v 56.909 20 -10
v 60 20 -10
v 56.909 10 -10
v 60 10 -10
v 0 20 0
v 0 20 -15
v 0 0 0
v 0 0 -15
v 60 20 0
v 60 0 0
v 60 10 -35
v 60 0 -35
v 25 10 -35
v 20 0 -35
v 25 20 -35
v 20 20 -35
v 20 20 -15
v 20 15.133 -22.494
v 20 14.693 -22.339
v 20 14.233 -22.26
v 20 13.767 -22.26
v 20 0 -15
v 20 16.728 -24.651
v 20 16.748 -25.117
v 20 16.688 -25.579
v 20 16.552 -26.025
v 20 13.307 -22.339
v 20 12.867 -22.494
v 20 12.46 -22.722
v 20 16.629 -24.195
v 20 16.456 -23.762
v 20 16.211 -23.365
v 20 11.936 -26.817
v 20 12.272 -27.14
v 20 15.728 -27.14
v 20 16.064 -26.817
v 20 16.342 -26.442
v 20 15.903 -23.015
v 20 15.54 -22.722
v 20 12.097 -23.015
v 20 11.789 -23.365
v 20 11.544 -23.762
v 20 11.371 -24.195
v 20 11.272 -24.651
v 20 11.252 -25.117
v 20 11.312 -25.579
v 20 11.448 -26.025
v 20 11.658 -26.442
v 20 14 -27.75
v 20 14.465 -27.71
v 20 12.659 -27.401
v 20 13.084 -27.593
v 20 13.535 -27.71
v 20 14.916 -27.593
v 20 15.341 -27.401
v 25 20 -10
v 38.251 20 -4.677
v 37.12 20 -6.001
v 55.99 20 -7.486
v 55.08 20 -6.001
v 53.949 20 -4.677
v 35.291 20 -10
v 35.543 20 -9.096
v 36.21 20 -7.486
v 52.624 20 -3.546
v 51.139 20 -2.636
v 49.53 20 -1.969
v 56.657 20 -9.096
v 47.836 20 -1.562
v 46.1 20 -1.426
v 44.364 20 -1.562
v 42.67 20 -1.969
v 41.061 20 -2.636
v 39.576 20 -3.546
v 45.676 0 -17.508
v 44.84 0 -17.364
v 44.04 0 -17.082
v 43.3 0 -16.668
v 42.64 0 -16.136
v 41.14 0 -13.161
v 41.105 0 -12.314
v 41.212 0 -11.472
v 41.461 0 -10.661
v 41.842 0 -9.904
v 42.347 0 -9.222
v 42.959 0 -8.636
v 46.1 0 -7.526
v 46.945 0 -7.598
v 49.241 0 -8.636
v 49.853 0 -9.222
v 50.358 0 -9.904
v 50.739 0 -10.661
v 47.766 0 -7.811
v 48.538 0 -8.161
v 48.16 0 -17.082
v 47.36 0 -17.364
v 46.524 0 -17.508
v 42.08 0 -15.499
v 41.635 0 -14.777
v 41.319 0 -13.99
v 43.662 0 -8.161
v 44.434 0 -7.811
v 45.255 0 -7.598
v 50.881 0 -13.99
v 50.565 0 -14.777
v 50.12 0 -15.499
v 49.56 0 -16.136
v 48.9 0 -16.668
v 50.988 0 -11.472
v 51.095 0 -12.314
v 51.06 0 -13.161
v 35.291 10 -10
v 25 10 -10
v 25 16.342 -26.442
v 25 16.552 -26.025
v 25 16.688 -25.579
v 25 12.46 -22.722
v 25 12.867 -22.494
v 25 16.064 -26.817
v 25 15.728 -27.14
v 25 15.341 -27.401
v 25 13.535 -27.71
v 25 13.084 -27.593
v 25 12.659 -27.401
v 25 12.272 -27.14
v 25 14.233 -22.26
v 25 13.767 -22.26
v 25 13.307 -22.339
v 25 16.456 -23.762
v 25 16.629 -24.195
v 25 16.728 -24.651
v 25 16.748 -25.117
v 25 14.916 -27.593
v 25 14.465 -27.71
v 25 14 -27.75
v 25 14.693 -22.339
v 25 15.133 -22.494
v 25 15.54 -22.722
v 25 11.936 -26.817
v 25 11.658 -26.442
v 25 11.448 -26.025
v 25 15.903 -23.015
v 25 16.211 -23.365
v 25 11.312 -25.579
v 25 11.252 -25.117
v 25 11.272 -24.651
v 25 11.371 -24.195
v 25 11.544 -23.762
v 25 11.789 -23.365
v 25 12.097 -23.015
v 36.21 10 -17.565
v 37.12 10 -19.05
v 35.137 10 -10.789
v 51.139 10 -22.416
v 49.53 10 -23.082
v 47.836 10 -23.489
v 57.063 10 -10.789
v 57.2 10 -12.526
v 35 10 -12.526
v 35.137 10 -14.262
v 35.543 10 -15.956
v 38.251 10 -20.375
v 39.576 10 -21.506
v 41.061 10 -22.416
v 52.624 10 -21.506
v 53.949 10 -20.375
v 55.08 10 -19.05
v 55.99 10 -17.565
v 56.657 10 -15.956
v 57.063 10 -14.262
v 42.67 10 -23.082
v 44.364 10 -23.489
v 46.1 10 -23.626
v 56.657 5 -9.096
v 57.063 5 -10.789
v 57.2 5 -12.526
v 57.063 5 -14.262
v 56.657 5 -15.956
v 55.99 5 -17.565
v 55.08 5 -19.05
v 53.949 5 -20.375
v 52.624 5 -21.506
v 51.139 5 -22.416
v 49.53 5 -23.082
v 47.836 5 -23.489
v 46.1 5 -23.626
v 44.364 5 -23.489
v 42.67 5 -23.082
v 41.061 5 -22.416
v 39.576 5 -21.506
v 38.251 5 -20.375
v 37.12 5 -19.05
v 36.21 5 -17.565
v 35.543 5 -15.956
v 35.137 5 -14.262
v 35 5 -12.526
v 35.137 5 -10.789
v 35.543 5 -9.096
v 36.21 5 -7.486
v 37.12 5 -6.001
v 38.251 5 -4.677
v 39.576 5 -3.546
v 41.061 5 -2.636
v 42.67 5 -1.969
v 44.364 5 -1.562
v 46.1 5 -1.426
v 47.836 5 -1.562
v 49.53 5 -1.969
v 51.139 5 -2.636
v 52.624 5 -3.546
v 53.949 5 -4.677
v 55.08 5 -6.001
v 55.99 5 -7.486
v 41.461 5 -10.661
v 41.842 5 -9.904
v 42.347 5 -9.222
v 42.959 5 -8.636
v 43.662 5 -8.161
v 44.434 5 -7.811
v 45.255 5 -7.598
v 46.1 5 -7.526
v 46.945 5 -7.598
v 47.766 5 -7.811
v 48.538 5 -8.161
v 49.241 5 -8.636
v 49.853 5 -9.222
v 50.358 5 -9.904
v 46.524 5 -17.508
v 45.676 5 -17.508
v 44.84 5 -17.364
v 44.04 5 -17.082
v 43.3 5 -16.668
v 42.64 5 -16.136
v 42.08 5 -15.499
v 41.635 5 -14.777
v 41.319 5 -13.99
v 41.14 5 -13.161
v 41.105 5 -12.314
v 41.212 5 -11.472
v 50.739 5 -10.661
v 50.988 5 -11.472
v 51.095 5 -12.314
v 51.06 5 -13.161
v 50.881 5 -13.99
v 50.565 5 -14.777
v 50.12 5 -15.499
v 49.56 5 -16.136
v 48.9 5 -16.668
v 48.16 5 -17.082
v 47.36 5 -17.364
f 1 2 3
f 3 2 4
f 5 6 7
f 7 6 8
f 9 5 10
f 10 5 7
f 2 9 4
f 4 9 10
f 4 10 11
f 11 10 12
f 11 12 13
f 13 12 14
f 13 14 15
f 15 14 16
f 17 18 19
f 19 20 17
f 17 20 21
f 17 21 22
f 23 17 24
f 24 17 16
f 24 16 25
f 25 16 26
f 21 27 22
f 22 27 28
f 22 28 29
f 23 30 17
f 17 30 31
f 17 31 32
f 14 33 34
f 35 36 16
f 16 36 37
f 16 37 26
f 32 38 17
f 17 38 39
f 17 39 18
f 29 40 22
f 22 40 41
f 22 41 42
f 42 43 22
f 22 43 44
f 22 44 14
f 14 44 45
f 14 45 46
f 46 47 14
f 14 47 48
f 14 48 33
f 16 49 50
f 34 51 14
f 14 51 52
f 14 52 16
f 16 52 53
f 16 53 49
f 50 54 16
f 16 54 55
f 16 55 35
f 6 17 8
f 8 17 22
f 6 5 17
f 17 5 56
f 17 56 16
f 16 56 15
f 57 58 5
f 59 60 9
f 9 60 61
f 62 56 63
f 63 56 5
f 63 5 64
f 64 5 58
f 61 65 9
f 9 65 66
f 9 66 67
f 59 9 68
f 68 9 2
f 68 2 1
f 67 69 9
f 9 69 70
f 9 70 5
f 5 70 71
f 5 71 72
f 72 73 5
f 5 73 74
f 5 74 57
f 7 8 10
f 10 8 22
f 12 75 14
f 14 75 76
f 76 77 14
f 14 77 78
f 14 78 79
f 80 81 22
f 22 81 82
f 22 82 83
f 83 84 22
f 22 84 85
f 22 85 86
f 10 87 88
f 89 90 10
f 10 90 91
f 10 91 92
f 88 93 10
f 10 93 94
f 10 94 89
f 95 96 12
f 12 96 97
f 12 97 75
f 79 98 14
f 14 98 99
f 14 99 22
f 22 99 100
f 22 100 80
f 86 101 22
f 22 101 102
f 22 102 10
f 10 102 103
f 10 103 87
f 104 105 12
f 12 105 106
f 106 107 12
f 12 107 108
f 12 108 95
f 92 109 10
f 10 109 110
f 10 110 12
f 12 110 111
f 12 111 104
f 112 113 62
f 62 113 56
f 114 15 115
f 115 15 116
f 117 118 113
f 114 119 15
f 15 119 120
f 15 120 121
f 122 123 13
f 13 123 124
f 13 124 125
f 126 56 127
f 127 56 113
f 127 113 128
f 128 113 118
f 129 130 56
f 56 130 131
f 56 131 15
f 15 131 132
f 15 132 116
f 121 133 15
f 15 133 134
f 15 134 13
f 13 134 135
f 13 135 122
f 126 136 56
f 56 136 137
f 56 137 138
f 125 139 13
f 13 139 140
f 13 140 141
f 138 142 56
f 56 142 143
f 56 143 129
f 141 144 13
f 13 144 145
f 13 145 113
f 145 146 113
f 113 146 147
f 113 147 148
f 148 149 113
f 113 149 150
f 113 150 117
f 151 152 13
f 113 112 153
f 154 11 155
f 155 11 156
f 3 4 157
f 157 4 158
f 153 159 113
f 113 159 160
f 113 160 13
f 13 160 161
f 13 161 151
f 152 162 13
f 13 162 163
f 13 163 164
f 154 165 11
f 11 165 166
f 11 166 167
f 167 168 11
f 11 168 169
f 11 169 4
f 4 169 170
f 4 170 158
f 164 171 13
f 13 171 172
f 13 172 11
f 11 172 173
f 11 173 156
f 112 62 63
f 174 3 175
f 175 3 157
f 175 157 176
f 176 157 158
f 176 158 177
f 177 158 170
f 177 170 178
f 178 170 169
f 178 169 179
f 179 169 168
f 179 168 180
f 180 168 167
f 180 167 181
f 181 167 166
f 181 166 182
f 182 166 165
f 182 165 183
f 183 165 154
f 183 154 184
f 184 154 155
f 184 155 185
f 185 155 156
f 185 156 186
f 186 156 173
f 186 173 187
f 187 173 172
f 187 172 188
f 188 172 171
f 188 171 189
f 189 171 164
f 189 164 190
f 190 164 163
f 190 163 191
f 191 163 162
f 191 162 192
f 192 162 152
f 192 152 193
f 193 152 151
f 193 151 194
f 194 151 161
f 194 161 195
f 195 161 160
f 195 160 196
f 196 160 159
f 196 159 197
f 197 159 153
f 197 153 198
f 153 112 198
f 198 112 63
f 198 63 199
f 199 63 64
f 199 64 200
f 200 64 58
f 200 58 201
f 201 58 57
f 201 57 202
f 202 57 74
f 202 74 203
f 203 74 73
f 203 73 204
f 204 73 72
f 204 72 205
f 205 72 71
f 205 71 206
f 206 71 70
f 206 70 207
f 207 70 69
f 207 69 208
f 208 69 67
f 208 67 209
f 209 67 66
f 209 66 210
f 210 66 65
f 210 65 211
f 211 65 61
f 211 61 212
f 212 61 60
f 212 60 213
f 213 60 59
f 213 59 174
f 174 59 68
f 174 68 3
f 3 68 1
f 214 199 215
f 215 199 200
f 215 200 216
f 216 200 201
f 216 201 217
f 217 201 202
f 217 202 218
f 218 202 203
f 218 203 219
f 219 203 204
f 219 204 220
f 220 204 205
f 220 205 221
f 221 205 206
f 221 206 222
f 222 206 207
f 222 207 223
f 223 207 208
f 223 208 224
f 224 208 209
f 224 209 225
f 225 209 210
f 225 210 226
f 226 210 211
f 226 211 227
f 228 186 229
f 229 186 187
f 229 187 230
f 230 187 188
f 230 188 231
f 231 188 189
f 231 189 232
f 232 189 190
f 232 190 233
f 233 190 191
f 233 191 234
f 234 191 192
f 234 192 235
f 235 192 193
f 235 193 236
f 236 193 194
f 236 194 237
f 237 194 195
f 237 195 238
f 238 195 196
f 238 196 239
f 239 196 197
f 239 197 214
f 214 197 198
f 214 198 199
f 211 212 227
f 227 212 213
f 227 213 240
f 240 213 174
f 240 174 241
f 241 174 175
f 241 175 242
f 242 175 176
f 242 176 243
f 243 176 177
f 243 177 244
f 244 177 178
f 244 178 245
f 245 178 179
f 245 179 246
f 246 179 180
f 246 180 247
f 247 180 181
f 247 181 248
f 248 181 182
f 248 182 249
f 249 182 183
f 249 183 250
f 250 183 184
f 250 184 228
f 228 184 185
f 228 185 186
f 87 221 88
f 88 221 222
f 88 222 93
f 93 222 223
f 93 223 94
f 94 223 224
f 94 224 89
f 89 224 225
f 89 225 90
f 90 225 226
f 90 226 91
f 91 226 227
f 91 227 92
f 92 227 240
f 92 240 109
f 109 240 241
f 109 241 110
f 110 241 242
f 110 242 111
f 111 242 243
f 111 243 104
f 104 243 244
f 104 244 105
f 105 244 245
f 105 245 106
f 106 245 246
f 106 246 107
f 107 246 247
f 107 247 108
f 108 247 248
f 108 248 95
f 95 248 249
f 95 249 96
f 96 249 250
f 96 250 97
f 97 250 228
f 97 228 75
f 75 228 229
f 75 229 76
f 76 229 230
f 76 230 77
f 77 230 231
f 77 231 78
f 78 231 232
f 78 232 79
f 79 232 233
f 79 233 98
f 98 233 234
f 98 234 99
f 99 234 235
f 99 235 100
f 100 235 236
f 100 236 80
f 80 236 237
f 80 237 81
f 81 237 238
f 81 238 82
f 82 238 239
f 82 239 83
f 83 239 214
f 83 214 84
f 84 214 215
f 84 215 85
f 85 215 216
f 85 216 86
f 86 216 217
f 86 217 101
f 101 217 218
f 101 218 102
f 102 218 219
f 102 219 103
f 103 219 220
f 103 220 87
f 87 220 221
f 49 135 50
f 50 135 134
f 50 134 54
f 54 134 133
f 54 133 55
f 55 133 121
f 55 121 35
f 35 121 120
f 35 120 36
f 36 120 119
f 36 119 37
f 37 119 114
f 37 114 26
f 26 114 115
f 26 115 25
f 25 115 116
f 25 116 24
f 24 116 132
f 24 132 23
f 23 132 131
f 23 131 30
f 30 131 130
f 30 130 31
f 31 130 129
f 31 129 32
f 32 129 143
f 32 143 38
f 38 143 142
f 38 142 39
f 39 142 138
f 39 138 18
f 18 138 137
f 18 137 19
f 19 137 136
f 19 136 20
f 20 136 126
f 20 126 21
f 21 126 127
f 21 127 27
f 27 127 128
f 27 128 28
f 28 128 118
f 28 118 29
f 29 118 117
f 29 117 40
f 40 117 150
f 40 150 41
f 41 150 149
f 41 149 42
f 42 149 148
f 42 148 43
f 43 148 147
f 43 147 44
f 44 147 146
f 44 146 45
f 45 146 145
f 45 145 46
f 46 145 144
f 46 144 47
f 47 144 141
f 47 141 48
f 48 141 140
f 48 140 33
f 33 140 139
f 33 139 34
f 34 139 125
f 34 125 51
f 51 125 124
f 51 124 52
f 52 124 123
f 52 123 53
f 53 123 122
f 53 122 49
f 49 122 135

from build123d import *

# Parameters (mm, degrees)
BOSS_EXTRUDE1_DEPTH = 20
SKETCH2_W           = 35
SKETCH2_H           = 25
CUT_EXTRUDE1_DEPTH  = 10
CUT_EXTRUDE2_START  = 20
SKETCH3_R           = 11.1
CUT_EXTRUDE2_DEPTH  = 25
SKETCH4_R           = 5
CUT_EXTRUDE3_DEPTH  = 6
SKETCH5_R           = 2.75
CUT_EXTRUDE4_DEPTH  = 26


with BuildPart() as part:
    # Sketch1 → Boss-Extrude1 (new body)
    with BuildSketch(Plane(origin=(0, 0, 0), x_dir=(1, 0, 0), z_dir=(0, 1, 0))):
        Polygon((0, 0), (60, 0), (60, 35), (20, 35), (20, 15), (0, 15), align=None)
    extrude(amount=BOSS_EXTRUDE1_DEPTH)

    # Sketch2 → Cut-Extrude1 (cut)
    with BuildSketch(Plane(origin=(0, 20, 0), x_dir=(1, 0, 0), z_dir=(0, 1, 0))):
        with Locations((42.5, 22.5)):
            Rectangle(SKETCH2_W, SKETCH2_H)
    extrude(amount=-CUT_EXTRUDE1_DEPTH, mode=Mode.SUBTRACT)

    # Sketch3 → Cut-Extrude2 (cut)
    with BuildSketch(Plane(origin=(0, 10, 0), x_dir=(1, 0, 0), z_dir=(0, 1, 0)).offset(CUT_EXTRUDE2_START)):
        with Locations((46.1, 12.525762493)):
            Circle(SKETCH3_R)
    extrude(amount=-CUT_EXTRUDE2_DEPTH, mode=Mode.SUBTRACT)

    # Sketch4 → Cut-Extrude3 (cut, through all)
    with BuildSketch(Plane(origin=(0, 5, 0), x_dir=(1, 0, 0), z_dir=(0, 1, 0))):
        with Locations((46.1, 12.525762493)):
            Circle(SKETCH4_R)
    extrude(amount=-CUT_EXTRUDE3_DEPTH, mode=Mode.SUBTRACT)

    # Sketch5 → Cut-Extrude4 (cut, through all)
    with BuildSketch(Plane(origin=(25, 0, 0), x_dir=(0, 0, -1), z_dir=(1, 0, 0))):
        with Locations((25, 14)):
            Circle(SKETCH5_R)
    extrude(amount=-CUT_EXTRUDE4_DEPTH, mode=Mode.SUBTRACT)


solid = part.part
